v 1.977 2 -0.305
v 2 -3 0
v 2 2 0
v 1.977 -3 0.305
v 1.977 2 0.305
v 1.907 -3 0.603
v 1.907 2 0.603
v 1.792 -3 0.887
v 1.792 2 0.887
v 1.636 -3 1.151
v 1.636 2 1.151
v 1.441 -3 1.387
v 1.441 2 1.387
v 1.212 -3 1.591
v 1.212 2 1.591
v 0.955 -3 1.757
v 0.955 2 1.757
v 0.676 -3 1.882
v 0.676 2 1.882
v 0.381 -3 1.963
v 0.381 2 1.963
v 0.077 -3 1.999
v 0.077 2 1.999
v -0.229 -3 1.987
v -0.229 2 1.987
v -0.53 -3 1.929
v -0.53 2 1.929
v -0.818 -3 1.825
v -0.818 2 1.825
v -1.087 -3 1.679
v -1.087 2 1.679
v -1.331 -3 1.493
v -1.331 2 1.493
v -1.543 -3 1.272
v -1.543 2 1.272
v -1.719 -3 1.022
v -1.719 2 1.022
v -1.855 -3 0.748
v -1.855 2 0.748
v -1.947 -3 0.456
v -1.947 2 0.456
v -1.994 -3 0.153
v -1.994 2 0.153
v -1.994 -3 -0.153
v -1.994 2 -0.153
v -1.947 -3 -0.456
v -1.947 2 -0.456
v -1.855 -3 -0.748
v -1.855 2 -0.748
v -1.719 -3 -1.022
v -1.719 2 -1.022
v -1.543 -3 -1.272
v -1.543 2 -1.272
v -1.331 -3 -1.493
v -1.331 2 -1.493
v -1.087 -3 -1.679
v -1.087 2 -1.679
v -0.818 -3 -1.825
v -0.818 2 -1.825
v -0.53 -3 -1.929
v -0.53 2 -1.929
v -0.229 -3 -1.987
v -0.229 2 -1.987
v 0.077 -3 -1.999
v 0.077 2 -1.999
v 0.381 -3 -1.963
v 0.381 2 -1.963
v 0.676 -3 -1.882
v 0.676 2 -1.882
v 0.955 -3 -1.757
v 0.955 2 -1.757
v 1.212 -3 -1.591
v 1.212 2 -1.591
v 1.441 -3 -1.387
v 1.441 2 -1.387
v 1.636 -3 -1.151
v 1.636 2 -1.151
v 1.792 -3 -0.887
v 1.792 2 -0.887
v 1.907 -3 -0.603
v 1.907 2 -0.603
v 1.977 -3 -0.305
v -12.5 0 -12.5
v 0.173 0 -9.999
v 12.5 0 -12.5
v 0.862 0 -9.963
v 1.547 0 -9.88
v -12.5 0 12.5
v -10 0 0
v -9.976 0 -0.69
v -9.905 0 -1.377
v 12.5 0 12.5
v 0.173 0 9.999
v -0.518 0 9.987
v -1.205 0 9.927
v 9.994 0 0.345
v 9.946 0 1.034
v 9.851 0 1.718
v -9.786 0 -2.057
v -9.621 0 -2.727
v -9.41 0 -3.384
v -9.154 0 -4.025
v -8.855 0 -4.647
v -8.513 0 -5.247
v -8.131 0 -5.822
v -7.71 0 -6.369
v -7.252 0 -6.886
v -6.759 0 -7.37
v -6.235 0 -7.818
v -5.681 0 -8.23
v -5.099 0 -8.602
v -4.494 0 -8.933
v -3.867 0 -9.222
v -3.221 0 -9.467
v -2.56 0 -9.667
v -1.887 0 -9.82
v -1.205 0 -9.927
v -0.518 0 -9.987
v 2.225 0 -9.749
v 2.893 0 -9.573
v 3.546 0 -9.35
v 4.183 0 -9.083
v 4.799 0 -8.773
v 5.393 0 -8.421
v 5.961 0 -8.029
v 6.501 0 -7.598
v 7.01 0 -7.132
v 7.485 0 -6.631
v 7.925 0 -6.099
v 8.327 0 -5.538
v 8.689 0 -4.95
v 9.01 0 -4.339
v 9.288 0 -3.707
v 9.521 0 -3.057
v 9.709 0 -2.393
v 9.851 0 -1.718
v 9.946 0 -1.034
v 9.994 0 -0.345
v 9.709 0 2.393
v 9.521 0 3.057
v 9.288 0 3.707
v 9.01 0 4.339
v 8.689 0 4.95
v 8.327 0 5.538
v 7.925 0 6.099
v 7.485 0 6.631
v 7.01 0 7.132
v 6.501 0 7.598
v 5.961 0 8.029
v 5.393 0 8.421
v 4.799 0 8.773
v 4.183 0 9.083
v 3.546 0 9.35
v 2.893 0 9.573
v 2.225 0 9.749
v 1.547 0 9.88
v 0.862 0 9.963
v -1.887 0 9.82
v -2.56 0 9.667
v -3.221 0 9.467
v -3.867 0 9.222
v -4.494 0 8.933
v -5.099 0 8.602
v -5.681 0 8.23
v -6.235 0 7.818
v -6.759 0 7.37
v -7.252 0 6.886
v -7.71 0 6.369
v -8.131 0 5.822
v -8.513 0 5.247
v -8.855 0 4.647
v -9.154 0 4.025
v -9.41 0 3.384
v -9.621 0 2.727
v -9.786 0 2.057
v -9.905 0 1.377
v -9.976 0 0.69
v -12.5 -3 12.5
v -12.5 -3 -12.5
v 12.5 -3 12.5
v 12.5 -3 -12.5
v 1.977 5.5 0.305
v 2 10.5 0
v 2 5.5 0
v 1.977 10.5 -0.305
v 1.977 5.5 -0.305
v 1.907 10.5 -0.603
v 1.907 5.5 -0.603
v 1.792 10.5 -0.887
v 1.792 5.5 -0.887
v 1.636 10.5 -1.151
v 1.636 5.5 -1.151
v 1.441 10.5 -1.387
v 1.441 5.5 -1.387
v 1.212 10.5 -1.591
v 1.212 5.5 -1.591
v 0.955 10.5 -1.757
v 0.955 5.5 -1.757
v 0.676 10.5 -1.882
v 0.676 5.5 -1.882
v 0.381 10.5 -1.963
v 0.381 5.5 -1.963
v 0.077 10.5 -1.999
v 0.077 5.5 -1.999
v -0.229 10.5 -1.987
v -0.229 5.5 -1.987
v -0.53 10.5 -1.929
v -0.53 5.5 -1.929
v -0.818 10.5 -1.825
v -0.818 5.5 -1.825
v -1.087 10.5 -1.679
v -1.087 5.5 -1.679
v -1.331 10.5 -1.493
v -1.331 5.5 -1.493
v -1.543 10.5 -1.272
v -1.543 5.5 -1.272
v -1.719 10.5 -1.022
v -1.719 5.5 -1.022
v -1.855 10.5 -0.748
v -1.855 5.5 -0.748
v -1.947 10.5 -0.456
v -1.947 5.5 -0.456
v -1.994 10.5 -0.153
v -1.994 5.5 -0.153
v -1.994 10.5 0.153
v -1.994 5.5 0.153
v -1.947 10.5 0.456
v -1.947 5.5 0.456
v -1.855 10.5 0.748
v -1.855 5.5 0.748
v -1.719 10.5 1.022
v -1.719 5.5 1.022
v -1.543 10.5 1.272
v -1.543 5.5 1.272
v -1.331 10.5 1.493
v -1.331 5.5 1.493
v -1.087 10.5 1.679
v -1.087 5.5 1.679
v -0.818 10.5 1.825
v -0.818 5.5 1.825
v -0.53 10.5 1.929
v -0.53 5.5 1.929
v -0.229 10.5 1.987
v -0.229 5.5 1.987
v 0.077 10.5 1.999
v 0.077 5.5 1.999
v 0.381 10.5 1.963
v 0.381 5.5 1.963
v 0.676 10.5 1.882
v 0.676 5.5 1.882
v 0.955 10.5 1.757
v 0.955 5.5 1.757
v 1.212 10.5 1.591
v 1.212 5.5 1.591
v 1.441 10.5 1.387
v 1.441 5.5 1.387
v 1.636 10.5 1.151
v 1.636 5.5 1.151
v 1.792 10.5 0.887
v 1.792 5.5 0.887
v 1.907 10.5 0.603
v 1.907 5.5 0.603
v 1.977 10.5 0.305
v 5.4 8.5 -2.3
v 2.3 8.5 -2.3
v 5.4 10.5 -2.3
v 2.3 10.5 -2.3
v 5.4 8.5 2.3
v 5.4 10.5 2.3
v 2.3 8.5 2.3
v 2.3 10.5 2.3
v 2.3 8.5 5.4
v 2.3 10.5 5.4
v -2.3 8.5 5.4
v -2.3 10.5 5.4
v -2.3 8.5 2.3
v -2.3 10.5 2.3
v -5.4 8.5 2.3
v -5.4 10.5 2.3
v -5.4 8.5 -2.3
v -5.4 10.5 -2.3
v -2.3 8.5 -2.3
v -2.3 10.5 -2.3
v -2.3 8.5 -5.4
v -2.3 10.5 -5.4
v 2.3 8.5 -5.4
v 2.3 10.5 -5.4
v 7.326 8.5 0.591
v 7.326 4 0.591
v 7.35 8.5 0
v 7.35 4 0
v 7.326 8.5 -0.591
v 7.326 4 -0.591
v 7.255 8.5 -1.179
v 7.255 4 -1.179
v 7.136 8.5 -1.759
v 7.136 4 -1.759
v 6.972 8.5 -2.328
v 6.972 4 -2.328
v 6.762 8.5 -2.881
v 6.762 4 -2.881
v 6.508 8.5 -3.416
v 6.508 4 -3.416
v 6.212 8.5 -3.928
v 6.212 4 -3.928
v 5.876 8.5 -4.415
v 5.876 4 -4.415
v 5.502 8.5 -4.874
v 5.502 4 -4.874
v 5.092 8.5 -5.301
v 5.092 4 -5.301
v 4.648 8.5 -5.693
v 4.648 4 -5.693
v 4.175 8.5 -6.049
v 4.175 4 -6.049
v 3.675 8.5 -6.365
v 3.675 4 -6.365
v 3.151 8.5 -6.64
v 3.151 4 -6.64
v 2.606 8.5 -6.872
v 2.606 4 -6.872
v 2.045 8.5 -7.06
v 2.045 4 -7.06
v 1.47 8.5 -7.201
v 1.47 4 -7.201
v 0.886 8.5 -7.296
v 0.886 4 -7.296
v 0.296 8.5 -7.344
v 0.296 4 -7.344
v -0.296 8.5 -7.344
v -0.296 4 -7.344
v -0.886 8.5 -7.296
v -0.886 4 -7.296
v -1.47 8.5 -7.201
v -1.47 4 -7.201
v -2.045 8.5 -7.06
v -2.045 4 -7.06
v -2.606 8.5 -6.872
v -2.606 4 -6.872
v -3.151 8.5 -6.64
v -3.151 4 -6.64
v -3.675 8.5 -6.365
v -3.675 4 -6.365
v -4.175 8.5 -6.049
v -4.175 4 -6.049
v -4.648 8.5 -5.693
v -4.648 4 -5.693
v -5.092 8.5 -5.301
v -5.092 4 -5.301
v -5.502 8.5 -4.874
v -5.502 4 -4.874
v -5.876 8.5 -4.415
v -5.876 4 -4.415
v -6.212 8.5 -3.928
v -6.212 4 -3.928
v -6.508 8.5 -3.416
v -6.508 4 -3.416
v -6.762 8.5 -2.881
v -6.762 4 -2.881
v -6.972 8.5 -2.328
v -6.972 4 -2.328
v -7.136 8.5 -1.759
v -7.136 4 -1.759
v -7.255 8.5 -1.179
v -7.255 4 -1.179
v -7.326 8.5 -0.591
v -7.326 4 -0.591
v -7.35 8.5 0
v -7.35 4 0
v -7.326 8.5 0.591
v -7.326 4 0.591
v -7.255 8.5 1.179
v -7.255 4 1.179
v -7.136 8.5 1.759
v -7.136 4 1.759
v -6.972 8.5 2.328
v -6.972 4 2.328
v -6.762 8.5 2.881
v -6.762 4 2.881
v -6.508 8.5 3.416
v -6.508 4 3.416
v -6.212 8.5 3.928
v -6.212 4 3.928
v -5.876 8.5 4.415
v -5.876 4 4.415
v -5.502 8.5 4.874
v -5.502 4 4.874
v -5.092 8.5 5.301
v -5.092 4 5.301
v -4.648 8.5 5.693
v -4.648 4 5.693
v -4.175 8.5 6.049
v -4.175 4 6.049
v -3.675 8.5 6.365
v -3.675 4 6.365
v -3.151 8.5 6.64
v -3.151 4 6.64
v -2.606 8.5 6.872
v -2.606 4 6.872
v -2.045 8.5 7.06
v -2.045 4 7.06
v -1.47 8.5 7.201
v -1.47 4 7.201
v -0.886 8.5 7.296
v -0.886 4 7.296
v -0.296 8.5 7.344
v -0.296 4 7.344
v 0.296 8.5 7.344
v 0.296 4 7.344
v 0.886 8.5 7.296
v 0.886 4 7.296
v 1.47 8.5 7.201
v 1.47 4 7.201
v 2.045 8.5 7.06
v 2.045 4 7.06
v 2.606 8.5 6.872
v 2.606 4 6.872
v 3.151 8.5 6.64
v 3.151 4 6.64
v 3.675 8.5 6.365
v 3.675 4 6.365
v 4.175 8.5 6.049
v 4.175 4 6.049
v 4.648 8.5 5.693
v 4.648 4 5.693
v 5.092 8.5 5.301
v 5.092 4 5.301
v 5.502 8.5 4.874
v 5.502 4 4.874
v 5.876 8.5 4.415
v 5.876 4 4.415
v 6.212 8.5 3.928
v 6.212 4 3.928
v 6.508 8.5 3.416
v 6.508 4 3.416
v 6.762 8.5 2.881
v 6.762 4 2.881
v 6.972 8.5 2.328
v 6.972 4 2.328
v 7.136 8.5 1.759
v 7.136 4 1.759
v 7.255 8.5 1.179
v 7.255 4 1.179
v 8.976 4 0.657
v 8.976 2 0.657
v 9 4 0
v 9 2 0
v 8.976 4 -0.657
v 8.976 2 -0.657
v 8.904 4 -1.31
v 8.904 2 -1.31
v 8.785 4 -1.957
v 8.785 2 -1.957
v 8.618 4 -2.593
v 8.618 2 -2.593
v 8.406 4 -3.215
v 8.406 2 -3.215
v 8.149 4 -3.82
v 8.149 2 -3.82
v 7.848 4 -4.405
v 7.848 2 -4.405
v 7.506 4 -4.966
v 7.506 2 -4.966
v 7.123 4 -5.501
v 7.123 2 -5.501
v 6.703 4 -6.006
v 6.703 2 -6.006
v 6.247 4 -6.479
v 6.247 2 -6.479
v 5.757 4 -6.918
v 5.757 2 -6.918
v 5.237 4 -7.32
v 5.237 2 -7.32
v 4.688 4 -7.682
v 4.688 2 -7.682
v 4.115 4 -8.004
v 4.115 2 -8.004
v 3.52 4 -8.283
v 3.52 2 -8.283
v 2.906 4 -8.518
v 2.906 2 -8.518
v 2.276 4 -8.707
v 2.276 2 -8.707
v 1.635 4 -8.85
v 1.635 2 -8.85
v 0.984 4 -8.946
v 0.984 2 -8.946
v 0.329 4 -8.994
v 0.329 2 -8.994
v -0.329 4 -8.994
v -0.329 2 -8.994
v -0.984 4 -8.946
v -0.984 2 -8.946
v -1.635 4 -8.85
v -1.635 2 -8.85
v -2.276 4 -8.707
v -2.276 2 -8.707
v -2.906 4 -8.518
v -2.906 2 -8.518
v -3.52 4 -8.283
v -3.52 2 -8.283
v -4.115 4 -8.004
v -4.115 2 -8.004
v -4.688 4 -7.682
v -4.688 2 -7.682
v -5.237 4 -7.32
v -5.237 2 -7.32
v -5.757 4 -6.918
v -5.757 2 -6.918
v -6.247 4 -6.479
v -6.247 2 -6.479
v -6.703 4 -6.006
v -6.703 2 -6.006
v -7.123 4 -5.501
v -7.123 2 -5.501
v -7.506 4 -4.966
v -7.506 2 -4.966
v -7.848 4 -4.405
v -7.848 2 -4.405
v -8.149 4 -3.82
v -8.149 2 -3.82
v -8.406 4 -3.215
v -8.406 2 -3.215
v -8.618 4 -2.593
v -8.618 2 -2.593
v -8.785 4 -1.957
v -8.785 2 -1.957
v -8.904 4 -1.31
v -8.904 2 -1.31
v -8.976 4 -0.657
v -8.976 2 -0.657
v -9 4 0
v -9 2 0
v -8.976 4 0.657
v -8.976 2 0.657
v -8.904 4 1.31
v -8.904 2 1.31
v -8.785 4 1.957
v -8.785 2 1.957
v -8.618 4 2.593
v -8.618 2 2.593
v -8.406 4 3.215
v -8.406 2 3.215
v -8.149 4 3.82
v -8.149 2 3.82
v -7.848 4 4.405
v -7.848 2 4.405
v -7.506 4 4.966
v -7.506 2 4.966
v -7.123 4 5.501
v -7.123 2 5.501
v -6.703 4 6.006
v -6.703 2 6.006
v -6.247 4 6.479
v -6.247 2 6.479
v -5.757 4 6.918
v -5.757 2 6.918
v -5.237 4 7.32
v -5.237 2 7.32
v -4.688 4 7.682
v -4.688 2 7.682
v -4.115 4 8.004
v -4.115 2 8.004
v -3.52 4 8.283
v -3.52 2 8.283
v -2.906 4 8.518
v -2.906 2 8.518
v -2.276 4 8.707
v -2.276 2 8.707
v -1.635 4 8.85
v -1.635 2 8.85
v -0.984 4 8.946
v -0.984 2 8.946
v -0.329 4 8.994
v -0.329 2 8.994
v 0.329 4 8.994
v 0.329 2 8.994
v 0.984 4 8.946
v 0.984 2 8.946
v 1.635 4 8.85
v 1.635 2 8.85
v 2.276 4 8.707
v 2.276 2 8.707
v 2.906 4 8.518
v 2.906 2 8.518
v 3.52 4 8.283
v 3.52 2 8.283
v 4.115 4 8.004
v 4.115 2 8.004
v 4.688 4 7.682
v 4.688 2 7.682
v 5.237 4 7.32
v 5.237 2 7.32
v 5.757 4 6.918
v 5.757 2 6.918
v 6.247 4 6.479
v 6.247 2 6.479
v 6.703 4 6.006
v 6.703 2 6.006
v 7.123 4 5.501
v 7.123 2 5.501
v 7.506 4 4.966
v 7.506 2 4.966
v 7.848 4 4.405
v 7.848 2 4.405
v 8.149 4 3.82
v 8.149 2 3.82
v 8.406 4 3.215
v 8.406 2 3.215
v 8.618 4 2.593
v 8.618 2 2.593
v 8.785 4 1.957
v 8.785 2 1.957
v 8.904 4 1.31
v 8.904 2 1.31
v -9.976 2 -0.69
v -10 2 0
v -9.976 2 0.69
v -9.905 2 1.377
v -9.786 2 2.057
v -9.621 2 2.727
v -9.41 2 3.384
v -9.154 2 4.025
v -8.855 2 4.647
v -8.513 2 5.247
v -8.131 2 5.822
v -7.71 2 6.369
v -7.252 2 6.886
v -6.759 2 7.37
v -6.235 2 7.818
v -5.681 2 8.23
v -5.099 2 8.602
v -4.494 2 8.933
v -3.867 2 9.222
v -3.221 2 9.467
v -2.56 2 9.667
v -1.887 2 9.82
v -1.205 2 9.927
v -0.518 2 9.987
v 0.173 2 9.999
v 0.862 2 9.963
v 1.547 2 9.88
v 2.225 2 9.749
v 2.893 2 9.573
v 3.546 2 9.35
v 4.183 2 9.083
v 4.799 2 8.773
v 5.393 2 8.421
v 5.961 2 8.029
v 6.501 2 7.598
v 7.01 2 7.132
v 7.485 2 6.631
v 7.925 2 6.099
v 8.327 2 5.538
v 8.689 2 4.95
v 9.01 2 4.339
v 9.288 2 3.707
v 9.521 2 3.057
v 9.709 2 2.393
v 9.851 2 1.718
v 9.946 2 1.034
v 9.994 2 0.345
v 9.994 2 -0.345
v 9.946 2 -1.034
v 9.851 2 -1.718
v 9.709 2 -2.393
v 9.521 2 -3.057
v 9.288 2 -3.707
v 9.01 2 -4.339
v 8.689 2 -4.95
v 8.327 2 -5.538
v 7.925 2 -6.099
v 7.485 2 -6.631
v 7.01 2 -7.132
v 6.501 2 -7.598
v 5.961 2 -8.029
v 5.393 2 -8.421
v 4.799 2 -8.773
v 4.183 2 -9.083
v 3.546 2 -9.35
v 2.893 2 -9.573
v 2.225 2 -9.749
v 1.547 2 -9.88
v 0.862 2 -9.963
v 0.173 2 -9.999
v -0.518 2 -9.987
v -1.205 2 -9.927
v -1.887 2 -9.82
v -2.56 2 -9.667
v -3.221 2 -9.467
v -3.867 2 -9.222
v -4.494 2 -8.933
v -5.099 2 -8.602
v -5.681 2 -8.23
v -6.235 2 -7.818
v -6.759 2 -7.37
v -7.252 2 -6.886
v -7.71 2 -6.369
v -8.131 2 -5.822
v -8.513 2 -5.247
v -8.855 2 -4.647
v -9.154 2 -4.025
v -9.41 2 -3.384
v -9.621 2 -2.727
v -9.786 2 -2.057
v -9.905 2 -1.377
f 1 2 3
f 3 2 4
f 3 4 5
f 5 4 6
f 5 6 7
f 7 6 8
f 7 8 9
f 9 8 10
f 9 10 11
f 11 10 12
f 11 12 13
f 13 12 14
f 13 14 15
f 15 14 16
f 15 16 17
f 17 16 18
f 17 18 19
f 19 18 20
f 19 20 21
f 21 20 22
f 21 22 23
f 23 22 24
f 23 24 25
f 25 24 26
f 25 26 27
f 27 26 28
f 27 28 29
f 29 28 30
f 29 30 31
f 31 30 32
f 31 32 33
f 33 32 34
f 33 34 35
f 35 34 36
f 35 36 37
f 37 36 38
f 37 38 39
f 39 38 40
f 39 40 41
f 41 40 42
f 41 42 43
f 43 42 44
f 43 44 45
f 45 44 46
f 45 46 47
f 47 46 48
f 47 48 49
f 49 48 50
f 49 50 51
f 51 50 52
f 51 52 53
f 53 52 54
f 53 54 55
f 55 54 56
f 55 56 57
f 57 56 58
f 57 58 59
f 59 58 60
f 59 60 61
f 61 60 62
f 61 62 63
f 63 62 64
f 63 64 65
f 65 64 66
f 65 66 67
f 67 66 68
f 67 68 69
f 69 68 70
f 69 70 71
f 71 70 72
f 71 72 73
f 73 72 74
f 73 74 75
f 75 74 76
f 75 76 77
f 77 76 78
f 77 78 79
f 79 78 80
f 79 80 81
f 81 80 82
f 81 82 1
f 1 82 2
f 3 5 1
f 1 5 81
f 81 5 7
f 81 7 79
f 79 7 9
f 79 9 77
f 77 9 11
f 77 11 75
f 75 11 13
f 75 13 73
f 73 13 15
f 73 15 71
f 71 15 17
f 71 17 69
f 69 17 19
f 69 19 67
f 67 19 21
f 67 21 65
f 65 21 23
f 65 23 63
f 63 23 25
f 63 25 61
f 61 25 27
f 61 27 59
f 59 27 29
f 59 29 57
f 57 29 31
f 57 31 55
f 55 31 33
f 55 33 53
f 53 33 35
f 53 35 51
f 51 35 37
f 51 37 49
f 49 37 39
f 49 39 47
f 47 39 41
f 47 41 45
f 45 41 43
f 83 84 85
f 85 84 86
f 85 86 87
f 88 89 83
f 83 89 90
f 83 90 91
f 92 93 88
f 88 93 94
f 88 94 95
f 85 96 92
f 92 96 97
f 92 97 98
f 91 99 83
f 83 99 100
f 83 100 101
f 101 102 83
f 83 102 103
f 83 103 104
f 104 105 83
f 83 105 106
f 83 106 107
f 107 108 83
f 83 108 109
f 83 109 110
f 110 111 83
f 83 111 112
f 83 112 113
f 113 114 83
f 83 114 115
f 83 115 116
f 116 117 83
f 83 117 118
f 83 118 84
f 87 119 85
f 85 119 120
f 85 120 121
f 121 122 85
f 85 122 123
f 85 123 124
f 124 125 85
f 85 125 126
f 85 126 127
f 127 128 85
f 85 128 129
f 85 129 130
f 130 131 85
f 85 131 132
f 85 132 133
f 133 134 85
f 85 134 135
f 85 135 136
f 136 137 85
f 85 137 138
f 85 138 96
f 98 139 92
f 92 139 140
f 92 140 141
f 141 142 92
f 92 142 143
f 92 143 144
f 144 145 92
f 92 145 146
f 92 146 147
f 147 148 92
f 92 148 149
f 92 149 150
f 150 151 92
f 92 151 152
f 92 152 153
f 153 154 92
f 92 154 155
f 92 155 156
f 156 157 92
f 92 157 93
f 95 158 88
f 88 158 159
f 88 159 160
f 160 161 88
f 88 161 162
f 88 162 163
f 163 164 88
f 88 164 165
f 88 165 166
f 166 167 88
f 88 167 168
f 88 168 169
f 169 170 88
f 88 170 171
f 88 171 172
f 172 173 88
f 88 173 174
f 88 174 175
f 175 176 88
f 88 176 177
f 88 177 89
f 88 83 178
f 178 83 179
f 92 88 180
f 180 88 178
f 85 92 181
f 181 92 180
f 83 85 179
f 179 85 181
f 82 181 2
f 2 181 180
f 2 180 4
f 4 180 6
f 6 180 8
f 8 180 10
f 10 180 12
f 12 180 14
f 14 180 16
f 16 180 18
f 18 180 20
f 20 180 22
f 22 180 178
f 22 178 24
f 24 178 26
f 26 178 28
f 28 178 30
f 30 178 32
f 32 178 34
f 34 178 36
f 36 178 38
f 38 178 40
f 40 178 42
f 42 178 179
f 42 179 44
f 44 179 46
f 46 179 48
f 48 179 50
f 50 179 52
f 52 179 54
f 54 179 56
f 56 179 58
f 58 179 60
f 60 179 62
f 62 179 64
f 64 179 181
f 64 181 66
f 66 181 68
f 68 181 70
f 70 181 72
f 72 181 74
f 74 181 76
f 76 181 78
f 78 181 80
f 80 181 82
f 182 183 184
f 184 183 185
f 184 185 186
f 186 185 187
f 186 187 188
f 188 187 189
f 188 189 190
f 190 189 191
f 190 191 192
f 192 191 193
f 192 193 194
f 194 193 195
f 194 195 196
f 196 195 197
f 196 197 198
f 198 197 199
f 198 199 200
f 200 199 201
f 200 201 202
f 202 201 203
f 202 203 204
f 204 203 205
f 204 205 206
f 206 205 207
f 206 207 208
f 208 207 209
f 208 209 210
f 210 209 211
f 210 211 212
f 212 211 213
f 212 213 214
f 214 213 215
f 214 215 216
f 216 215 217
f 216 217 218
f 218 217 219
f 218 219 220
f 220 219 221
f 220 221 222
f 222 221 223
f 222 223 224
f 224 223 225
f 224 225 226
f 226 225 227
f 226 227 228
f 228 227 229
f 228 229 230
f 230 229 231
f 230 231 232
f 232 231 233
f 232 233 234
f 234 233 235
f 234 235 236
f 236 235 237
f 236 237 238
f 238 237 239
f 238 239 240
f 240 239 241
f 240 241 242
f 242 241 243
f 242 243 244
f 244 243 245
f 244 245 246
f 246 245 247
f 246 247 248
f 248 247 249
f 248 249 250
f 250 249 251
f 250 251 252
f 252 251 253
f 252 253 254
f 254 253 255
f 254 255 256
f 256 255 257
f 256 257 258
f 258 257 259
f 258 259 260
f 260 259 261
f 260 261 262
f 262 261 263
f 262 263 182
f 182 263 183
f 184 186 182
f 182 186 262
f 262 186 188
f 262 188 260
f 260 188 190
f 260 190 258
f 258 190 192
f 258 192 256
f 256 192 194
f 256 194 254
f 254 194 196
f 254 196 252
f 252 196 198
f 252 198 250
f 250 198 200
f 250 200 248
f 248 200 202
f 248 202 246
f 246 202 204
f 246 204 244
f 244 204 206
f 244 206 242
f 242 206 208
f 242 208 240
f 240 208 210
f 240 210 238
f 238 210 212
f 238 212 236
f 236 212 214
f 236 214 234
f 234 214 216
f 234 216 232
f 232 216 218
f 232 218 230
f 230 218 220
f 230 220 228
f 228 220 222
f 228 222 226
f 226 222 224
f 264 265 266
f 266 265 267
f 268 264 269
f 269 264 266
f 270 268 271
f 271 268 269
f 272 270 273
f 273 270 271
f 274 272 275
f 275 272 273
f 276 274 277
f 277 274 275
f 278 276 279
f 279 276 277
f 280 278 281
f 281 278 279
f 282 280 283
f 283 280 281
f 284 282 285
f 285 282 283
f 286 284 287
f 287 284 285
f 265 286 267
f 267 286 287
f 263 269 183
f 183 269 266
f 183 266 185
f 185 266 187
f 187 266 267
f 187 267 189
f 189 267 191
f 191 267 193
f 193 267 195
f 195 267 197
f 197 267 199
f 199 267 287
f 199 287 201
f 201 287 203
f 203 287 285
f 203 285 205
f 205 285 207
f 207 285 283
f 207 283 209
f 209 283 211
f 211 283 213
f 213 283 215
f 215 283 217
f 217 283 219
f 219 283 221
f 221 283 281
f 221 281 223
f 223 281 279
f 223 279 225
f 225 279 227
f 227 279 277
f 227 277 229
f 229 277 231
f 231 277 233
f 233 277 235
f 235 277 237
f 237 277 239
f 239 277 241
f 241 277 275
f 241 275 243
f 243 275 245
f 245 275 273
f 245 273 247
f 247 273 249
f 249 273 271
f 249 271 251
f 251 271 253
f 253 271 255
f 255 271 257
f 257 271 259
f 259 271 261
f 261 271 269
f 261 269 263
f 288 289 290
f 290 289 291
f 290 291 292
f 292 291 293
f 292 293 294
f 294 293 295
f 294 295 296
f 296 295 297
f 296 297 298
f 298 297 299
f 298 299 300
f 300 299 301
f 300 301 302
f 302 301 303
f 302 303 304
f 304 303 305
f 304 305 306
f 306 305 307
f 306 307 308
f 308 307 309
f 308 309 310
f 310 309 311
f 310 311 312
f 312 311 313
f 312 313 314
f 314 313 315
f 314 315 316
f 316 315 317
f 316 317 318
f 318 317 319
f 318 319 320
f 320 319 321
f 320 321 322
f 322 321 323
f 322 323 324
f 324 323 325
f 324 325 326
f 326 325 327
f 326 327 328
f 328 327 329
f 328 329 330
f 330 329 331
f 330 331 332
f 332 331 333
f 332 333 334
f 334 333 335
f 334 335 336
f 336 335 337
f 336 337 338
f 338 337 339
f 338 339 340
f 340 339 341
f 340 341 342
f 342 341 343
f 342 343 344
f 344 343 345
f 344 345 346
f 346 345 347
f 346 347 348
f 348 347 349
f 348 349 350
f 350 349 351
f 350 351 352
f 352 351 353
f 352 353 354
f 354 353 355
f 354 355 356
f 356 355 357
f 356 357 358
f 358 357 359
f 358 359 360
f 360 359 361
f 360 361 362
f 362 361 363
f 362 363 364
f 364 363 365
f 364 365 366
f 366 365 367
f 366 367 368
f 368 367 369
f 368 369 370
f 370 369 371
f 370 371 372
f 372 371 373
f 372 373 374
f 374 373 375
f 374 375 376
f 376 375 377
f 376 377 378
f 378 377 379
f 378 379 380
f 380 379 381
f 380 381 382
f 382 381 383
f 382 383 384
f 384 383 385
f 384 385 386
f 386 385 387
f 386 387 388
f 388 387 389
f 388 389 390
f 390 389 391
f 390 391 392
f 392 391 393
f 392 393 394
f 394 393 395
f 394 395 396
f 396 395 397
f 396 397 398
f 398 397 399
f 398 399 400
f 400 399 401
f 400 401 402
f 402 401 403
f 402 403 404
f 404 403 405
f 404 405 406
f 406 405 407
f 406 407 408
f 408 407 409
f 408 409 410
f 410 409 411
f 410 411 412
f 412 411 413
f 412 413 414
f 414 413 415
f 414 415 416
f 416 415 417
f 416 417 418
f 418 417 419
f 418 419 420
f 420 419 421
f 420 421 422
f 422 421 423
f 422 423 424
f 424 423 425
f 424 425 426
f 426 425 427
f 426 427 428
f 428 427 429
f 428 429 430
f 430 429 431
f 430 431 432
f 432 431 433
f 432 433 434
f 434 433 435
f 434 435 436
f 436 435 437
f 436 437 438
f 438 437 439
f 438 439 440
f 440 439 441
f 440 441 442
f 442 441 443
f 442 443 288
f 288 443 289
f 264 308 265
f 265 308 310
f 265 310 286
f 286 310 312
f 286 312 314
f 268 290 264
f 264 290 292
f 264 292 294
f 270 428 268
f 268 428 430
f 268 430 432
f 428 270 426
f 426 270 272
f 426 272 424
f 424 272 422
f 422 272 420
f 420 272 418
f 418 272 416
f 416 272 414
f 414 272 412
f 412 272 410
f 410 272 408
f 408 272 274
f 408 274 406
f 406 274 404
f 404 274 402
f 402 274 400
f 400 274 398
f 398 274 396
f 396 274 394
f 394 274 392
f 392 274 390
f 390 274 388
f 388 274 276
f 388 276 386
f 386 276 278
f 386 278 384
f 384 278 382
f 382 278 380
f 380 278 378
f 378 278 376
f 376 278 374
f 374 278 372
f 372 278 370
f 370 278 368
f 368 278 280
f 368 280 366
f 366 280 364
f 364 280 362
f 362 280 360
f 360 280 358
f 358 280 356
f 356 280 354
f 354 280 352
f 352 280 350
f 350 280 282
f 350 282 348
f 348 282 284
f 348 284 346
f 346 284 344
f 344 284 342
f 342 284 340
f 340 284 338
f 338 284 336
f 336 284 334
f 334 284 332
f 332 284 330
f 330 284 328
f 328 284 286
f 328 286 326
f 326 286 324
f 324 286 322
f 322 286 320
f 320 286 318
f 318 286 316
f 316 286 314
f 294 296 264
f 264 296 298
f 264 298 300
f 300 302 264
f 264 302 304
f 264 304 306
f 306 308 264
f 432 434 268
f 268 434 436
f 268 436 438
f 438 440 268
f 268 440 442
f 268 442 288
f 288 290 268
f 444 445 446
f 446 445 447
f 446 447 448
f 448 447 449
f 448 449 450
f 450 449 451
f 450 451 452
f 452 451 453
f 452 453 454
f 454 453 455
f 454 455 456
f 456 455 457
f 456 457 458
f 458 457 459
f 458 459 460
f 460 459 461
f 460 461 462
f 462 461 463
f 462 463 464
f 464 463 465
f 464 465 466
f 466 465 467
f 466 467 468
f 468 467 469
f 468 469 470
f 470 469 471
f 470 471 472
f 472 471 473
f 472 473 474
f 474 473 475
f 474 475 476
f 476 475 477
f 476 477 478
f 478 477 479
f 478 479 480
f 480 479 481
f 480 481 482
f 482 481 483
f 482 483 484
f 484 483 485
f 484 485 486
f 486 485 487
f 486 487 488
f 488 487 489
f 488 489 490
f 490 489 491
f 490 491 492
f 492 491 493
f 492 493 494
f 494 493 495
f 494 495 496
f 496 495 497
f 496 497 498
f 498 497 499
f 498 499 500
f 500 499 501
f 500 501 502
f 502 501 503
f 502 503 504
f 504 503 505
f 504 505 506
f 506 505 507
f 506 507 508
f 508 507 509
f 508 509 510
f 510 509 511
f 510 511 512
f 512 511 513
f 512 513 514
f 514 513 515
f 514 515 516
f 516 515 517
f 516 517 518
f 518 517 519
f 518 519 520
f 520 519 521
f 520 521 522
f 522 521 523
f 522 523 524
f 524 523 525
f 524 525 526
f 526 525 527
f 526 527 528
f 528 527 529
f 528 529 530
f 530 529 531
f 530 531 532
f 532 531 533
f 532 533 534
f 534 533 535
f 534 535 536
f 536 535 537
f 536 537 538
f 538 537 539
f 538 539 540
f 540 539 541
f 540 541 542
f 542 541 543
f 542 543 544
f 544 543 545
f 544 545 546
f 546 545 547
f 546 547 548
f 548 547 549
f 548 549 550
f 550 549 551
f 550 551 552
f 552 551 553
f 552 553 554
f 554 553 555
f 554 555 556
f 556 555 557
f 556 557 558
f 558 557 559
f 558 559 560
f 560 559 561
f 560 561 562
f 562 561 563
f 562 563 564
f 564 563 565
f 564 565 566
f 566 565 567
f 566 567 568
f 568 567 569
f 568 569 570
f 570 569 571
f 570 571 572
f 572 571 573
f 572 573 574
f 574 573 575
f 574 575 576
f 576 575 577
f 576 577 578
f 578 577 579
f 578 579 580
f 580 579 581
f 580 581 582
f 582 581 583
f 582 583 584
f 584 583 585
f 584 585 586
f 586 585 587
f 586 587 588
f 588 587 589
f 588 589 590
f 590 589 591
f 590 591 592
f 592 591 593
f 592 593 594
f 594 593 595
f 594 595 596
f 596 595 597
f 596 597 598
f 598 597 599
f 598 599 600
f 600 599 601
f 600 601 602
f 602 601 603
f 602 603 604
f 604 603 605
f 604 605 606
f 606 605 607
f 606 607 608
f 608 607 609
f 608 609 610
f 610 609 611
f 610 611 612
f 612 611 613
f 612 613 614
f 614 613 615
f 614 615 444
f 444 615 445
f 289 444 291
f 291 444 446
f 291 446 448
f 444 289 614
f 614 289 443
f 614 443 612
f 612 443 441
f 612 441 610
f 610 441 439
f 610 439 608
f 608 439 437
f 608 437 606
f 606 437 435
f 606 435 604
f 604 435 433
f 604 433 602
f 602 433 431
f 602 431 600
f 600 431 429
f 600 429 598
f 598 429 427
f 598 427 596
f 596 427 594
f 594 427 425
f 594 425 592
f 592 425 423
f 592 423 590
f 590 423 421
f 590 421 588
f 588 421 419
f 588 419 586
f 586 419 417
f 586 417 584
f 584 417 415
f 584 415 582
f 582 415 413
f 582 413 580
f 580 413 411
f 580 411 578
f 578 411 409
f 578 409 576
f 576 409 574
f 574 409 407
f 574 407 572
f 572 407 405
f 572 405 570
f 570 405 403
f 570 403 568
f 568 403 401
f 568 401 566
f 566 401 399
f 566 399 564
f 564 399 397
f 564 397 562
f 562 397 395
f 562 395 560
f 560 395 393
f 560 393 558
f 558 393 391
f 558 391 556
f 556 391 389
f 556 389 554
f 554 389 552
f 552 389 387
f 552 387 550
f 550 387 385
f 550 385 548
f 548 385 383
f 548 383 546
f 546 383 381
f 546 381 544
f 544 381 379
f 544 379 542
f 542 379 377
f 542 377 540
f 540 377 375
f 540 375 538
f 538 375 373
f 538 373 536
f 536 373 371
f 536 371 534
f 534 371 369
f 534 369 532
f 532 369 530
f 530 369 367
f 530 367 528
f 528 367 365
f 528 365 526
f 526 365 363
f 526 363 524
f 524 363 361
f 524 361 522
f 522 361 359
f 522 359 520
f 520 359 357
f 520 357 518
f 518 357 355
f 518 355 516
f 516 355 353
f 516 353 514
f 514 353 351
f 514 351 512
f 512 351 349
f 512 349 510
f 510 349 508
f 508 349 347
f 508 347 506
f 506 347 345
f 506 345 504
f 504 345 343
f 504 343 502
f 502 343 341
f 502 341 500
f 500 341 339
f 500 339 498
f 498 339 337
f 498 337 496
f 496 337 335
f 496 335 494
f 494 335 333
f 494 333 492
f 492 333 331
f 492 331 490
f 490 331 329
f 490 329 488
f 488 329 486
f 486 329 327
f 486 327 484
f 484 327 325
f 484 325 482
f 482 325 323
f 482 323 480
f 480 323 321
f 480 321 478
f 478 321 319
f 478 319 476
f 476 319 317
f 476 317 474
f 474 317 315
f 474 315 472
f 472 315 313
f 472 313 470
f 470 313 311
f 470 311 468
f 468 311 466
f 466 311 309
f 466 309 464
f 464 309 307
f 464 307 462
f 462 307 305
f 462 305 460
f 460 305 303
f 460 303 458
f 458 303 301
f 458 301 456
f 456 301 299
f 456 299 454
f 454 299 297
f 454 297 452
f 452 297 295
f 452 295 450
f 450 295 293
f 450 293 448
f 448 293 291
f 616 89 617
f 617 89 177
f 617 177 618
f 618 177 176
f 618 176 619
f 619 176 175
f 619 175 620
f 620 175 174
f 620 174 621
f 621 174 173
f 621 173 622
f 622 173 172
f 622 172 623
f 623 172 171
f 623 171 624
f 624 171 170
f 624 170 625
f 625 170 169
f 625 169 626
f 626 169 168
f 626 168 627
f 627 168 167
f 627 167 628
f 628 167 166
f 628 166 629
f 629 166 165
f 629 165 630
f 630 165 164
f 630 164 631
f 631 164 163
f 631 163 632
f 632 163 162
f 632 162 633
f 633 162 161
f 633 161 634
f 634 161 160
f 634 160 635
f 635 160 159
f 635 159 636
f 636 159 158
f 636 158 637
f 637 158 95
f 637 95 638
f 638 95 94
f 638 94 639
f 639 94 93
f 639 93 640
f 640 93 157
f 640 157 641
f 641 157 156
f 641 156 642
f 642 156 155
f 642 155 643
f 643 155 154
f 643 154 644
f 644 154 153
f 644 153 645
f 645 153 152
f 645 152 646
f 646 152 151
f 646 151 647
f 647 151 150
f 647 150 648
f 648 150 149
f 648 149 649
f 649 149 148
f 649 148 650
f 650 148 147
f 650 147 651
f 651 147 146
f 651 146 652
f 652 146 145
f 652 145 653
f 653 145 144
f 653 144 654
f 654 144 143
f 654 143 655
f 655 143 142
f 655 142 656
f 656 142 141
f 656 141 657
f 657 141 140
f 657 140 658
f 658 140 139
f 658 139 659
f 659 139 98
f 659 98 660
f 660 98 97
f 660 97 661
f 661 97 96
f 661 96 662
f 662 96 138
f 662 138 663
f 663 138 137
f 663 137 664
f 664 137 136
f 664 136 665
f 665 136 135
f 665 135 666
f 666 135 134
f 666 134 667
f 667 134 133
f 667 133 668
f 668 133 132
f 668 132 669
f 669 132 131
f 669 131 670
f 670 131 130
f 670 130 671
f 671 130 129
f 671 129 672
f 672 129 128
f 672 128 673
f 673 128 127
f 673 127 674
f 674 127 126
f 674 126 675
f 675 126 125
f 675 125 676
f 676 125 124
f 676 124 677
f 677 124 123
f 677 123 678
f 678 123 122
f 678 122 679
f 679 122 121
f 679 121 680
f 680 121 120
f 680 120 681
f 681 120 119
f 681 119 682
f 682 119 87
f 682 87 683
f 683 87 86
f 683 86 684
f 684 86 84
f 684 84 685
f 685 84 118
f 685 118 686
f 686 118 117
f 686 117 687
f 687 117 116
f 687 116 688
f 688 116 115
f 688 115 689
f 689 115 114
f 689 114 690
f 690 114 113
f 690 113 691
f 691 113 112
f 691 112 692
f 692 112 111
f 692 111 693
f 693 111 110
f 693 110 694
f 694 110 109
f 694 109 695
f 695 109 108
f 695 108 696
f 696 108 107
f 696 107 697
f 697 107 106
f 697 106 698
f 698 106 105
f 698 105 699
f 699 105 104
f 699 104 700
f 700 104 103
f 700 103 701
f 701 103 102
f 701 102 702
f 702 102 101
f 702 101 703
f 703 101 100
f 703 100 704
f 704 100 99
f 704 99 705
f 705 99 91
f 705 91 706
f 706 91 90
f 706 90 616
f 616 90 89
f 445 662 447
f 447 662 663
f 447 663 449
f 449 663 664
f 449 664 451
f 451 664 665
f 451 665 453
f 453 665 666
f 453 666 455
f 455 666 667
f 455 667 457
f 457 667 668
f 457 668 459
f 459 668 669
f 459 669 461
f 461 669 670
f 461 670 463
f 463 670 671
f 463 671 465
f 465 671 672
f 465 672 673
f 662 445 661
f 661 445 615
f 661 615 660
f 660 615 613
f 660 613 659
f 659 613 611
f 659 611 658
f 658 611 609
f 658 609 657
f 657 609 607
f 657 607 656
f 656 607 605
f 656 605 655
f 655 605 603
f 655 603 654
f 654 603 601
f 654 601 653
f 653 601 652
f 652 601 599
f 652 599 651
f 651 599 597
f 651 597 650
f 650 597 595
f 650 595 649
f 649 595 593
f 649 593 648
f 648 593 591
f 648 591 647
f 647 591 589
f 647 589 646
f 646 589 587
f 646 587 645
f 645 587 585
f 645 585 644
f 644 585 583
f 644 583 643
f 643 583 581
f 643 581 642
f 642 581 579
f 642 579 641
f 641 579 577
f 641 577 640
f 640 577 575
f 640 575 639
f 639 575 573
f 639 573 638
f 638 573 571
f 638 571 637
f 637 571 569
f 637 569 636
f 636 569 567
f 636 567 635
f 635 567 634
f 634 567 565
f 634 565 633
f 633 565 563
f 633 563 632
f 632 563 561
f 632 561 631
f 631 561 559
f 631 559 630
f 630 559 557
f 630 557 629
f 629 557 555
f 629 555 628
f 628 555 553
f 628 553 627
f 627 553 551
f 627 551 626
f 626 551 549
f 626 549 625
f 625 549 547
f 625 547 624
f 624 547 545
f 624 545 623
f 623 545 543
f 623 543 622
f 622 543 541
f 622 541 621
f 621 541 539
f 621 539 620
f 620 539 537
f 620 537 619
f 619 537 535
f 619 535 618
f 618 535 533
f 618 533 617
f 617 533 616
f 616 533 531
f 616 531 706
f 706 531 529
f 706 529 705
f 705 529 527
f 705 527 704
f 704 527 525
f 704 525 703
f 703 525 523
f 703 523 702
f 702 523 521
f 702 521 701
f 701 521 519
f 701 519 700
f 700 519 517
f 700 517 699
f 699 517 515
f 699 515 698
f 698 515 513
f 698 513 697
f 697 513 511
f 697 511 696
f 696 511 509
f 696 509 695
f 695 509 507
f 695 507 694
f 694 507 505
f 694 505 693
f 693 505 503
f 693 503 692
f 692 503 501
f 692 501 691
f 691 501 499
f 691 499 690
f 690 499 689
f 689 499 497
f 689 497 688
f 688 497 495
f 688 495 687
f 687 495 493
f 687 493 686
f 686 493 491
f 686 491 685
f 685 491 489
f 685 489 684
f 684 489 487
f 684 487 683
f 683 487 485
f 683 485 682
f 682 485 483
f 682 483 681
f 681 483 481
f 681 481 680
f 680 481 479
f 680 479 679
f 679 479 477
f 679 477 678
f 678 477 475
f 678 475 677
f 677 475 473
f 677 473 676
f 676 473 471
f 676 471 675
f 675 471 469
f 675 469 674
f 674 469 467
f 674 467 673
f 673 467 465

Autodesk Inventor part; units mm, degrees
ref_plane "YZ Plane" through (0, 0, 0) normal (1, 0, 0) x (0, 1, 0)
ref_plane "XZ Plane" through (0, 0, 0) normal (0, 1, 0) x (-1, 0, 0)
ref_plane "XY Plane" through (0, 0, 0) normal (0, 0, 1) x (1, 0, 0)
sketch "Skizze1" plane through (0, 0, 0) normal (0, 1, 0) x (-1, 0, 0)
  circle A0 centre (0, 0) radius 10
  dimension "d0" = 20
extrude "Extrusion1" add sketch "Skizze1" along normal blind 2
sketch "Skizze2" plane through (0, 2, 0) normal (0, 1, 0) x (1, 0, 0)
  circle A0 centre (0, 0) radius 9
  dimension "d3" = 18
extrude "Extrusion2" add sketch "Skizze2" along normal blind 2
sketch "Skizze3" plane through (0, 4, 0) normal (0, 1, 0) x (1, 0, 0)
  circle A0 centre (0, 0) radius 7.35
  dimension "d6" = 14.7
extrude "Extrusion3" add sketch "Skizze3" along normal blind 4.5
sketch "Skizze4" plane through (0, 8.5, 0) normal (0, 1, 0) x (1, 0, 0)
  line L0 (-5.4, 5.4) -> (5.4, 5.4)
  line L1 (5.4, 5.4) -> (5.4, -5.4)
  line L2 (5.4, -5.4) -> (-5.4, -5.4)
  line L3 (-5.4, -5.4) -> (-5.4, 5.4)
  line L4 (0, 14) -> (0, -14) projected
  line L5 (-14, 0) -> (14, 0) projected
  line L6 (-5.4, 5.4) -> (-2.3, 5.4)
  line L7 (-2.3, 5.4) -> (-2.3, 2.3)
  line L8 (-2.3, 2.3) -> (-5.4, 2.3)
  line L9 (-5.4, 2.3) -> (-5.4, 5.4)
  line L10 (5.4, 5.4) -> (2.3, 5.4)
  line L11 (2.3, 5.4) -> (2.3, 2.3)
  line L12 (2.3, 2.3) -> (5.4, 2.3)
  line L13 (5.4, 2.3) -> (5.4, 5.4)
  line L14 (5.4, -5.4) -> (2.3, -5.4)
  line L15 (2.3, -5.4) -> (2.3, -2.3)
  line L16 (2.3, -2.3) -> (5.4, -2.3)
  line L17 (5.4, -2.3) -> (5.4, -5.4)
  line L18 (-5.4, -5.4) -> (-2.3, -5.4)
  line L19 (-2.3, -5.4) -> (-2.3, -2.3)
  line L20 (-2.3, -2.3) -> (-5.4, -2.3)
  line L21 (-5.4, -2.3) -> (-5.4, -5.4)
  point P0 (0, 0)
  point P1 (5.4, 2.3)
  point P2 (-5.4, 2.3)
  point P3 (-5.4, -2.3)
  point P4 (2.3, -5.4)
  point P5 (5.4, -2.3)
  dimension "d9" = 10.8
  dimension "d10" = 10.8
  dimension "d11" = 3.1
  dimension "d12" = 3.1
  dimension "d13" = 3.1
  dimension "d14" = 3.1
  dimension "d15" = 3.1
  dimension "d16" = 3.1
  dimension "d17" = 3.1
  dimension "d18" = 3.1
extrude "Extrusion4" add sketch "Skizze4" along normal blind 2 contours L0 L4 L5 L3 L8 L7 | L0 L11 L12 L1 L5 L4 | L5 L4 L2 L19 L20 L3 | L5 L1 L16 L15 L2 L4
sketch "Skizze5" plane through (0, 10.5, 0) normal (0, 1, 0) x (1, 0, 0)
  circle A0 centre (0, 0) radius 2
  dimension "d21" = 4
extrude "Extrusion5" cut sketch "Skizze5" against normal blind 5
sketch "Skizze6" plane through (0, 0, 0) normal (0, -1, 0) x (1, 0, 0)
  line L0 (-12.5, 12.5) -> (12.5, 12.5)
  line L1 (12.5, 12.5) -> (12.5, -12.5)
  line L2 (12.5, -12.5) -> (-12.5, -12.5)
  line L3 (-12.5, -12.5) -> (-12.5, 12.5)
  line L4 (-12.5, 12.5) -> (12.5, -12.5) construction
  line L5 (12.5, 12.5) -> (-12.5, -12.5) construction
  point P0 (0, 0)
  dimension "d24" = 25
  dimension "d25" = 25
extrude "Extrusion6" add sketch "Skizze6" along normal blind 3
sketch "Skizze7" plane through (0, -3, 0) normal (0, -1, 0) x (1, 0, 0)
  circle A0 centre (0, 0) radius 2
  dimension "d28" = 4
extrude "Extrusion7" cut sketch "Skizze7" against normal blind 5
properties part number "_3D-Druck"
